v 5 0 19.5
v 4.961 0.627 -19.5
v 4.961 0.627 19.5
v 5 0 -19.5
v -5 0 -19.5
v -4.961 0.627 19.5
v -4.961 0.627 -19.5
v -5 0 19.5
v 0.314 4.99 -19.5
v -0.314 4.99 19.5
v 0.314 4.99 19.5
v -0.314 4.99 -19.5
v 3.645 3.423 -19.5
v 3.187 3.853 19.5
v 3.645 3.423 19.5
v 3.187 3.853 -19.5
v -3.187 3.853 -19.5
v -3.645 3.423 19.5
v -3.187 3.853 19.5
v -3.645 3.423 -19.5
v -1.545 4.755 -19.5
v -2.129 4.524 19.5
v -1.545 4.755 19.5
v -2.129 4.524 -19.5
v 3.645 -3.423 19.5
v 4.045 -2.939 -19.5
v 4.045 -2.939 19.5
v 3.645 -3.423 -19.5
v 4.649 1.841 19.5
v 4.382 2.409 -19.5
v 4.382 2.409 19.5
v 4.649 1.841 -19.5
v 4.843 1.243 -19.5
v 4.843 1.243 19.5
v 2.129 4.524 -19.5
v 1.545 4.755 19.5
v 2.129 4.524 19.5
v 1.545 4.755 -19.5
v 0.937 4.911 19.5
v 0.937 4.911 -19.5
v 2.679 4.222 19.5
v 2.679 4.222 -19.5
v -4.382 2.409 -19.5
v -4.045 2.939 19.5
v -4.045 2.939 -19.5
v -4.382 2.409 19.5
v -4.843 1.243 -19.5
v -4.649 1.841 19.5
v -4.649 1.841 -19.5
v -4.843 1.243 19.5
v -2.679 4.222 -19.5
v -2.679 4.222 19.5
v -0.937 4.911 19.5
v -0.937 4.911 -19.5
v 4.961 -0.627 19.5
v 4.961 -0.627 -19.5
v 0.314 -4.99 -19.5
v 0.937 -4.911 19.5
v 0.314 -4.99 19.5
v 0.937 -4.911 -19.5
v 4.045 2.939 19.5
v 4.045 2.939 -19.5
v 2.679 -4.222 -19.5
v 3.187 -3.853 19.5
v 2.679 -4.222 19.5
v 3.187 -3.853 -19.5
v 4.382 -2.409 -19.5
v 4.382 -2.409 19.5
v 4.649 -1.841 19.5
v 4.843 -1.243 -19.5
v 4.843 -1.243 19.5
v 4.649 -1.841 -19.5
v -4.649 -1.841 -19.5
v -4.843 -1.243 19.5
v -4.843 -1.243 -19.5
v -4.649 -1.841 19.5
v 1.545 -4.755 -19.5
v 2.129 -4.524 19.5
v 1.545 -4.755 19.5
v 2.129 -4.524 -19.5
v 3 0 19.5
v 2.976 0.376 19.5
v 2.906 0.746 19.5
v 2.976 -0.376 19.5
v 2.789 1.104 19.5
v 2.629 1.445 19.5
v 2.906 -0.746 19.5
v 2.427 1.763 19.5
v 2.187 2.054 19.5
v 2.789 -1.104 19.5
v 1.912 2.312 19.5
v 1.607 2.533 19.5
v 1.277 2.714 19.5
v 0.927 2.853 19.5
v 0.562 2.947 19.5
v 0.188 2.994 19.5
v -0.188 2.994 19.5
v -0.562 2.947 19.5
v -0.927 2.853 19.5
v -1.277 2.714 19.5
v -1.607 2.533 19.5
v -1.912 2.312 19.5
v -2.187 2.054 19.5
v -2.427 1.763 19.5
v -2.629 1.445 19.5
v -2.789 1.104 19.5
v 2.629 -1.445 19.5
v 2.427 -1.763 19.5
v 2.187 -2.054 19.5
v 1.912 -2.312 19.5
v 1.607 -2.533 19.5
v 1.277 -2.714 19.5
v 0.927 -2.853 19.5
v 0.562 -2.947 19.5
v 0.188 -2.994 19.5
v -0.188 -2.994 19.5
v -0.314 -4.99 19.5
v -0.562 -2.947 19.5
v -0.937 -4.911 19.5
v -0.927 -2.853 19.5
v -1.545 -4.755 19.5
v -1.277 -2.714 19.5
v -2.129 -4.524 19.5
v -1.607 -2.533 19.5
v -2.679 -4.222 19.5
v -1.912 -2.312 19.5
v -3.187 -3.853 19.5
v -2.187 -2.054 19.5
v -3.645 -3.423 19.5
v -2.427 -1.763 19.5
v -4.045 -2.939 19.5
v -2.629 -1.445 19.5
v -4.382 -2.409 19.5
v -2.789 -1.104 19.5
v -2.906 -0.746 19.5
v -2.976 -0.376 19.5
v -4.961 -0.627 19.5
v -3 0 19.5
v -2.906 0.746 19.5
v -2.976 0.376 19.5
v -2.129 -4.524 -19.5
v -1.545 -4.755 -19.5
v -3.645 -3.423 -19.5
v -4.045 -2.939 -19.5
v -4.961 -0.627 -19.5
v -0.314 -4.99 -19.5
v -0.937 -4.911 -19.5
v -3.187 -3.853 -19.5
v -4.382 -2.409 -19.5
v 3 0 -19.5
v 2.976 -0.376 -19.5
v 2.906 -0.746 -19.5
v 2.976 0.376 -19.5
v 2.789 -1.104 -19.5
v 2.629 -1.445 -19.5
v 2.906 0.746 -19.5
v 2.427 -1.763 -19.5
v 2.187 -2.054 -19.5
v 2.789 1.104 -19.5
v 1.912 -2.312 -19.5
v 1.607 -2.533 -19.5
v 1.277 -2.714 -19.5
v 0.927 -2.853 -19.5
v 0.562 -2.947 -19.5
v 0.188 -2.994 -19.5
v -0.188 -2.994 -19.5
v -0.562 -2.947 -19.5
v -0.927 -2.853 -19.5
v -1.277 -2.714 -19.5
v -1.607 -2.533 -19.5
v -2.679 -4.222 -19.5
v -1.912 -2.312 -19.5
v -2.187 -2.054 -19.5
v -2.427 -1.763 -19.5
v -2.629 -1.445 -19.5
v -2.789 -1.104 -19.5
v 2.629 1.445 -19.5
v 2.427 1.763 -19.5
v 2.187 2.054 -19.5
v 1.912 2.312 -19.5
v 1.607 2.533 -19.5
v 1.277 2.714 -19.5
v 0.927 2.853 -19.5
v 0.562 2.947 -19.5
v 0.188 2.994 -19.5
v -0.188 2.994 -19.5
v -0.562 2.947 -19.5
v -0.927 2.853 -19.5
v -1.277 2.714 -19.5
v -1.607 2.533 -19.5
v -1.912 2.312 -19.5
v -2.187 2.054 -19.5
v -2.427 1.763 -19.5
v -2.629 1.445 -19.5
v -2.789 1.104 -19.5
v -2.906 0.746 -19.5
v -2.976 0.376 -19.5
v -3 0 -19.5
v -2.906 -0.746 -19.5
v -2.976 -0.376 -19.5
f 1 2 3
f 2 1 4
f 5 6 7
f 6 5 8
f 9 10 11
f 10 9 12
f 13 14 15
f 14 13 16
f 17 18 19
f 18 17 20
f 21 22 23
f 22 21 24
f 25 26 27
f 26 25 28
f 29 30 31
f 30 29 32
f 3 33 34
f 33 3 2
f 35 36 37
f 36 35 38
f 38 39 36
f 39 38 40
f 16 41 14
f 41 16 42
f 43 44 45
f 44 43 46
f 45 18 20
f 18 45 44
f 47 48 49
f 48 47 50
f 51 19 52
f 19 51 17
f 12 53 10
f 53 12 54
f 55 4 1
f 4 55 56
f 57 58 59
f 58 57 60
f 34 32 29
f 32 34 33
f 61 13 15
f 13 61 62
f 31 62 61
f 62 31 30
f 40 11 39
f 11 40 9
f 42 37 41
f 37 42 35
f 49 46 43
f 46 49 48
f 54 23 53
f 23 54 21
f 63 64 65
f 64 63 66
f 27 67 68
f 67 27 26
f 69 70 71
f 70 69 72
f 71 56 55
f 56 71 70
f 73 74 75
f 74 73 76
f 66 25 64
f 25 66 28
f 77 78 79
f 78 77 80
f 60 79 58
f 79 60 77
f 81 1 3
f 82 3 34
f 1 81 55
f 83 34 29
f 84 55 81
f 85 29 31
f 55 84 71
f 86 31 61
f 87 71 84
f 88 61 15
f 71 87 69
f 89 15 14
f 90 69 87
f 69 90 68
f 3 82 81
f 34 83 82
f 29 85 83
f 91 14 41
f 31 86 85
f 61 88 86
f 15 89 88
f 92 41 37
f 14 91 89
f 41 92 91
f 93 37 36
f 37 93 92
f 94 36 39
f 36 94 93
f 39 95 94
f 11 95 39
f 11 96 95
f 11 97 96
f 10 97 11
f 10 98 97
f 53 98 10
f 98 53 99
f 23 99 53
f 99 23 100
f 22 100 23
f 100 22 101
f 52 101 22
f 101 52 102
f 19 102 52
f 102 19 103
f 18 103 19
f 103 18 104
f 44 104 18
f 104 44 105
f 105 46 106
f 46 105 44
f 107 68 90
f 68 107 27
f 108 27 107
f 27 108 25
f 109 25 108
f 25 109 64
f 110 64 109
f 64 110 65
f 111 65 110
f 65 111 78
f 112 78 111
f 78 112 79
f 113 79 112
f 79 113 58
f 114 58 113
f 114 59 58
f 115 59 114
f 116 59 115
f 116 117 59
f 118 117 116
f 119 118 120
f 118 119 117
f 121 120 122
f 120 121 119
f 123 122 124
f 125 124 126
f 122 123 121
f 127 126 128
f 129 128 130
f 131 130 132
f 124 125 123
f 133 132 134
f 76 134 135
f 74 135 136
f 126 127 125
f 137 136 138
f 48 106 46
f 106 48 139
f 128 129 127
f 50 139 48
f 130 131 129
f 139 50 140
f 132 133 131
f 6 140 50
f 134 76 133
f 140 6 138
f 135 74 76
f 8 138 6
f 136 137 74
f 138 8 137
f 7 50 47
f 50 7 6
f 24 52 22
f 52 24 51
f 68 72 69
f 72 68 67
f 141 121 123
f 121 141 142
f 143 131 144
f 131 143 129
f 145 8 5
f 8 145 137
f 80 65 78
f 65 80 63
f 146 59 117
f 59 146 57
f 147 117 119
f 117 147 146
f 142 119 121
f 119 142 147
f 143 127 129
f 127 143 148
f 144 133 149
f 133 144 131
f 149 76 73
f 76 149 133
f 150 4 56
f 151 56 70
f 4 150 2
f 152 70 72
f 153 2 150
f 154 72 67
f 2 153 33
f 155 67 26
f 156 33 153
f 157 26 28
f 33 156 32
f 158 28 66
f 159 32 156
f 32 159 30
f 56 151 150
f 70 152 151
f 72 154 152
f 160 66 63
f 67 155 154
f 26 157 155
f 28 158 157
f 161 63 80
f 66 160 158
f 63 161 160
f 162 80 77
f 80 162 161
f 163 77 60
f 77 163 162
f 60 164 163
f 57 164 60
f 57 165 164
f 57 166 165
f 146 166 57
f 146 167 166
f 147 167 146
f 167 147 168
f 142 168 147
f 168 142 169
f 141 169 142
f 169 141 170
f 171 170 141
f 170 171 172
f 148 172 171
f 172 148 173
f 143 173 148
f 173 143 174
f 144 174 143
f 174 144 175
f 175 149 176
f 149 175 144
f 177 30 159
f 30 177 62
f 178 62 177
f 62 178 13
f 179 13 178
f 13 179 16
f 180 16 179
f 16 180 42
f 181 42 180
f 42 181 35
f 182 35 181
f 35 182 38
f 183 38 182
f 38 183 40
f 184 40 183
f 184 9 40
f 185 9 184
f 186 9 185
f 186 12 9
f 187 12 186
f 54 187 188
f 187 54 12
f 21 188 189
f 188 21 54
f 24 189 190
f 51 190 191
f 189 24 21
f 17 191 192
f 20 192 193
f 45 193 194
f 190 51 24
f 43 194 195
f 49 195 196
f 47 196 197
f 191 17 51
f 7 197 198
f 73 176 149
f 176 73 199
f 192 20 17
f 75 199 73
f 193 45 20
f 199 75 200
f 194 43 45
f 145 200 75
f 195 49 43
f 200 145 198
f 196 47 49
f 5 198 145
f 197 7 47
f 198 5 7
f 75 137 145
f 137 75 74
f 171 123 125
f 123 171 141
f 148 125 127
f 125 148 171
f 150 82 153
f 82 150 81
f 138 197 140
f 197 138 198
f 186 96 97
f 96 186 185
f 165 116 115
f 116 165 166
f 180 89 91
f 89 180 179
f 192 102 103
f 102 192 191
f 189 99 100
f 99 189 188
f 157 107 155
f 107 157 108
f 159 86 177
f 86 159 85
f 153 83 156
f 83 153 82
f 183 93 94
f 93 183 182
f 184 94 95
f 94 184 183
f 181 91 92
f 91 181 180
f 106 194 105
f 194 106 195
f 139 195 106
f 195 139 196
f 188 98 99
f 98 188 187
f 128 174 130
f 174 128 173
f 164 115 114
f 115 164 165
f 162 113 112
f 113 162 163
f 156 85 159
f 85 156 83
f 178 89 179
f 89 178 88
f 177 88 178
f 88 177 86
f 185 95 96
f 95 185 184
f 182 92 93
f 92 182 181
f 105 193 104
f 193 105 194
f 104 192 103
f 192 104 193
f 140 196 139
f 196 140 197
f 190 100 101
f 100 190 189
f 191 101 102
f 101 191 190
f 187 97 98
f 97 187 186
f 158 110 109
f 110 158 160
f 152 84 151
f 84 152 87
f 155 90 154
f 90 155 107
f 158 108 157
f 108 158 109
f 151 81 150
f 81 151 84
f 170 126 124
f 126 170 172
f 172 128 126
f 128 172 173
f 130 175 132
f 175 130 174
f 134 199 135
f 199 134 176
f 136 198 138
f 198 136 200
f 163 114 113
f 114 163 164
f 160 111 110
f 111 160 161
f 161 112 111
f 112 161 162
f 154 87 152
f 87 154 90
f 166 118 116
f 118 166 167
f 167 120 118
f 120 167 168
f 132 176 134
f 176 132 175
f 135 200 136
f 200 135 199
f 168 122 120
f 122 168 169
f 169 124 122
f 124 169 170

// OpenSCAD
$fn = 50;


difference() {
	union() {
		translate(v = [0, 0, -19.5000000000]) {
			cylinder(h = 39, r = 5.0000000000);
		}
	}
	union() {
		translate(v = [0, 0, -100.0000000000]) {
			cylinder(h = 200, r = 3.0000000000);
		}
	}
}
